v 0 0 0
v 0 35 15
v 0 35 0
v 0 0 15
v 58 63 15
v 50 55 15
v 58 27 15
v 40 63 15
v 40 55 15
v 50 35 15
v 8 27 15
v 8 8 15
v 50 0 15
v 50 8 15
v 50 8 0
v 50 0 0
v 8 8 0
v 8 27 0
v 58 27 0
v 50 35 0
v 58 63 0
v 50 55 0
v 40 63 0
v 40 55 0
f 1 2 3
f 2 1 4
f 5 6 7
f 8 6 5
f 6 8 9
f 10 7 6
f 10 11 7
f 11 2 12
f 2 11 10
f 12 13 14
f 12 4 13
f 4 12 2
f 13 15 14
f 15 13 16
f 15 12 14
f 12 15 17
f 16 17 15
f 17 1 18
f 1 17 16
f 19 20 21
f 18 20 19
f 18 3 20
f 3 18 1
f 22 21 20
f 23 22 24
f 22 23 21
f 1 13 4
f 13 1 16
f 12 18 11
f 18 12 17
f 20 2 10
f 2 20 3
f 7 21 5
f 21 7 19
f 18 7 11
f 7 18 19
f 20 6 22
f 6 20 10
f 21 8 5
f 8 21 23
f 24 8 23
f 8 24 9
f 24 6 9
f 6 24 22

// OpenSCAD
dim = [19,50];
thickness = 8;
width = 15;
front =  20;
edge = 10;

cube([dim[1], thickness, width]);

cube([thickness, 2*thickness+dim[0], width]);

translate([0, dim[0]+thickness, 0])
  cube([dim[1]+thickness, thickness, width]);


translate([dim[1], dim[0]+thickness, 0])
  cube([thickness, 2*thickness+front, width]);

translate([dim[1]-edge, dim[0]+2*thickness+front, 0])
  cube([edge+thickness, thickness, width]);
